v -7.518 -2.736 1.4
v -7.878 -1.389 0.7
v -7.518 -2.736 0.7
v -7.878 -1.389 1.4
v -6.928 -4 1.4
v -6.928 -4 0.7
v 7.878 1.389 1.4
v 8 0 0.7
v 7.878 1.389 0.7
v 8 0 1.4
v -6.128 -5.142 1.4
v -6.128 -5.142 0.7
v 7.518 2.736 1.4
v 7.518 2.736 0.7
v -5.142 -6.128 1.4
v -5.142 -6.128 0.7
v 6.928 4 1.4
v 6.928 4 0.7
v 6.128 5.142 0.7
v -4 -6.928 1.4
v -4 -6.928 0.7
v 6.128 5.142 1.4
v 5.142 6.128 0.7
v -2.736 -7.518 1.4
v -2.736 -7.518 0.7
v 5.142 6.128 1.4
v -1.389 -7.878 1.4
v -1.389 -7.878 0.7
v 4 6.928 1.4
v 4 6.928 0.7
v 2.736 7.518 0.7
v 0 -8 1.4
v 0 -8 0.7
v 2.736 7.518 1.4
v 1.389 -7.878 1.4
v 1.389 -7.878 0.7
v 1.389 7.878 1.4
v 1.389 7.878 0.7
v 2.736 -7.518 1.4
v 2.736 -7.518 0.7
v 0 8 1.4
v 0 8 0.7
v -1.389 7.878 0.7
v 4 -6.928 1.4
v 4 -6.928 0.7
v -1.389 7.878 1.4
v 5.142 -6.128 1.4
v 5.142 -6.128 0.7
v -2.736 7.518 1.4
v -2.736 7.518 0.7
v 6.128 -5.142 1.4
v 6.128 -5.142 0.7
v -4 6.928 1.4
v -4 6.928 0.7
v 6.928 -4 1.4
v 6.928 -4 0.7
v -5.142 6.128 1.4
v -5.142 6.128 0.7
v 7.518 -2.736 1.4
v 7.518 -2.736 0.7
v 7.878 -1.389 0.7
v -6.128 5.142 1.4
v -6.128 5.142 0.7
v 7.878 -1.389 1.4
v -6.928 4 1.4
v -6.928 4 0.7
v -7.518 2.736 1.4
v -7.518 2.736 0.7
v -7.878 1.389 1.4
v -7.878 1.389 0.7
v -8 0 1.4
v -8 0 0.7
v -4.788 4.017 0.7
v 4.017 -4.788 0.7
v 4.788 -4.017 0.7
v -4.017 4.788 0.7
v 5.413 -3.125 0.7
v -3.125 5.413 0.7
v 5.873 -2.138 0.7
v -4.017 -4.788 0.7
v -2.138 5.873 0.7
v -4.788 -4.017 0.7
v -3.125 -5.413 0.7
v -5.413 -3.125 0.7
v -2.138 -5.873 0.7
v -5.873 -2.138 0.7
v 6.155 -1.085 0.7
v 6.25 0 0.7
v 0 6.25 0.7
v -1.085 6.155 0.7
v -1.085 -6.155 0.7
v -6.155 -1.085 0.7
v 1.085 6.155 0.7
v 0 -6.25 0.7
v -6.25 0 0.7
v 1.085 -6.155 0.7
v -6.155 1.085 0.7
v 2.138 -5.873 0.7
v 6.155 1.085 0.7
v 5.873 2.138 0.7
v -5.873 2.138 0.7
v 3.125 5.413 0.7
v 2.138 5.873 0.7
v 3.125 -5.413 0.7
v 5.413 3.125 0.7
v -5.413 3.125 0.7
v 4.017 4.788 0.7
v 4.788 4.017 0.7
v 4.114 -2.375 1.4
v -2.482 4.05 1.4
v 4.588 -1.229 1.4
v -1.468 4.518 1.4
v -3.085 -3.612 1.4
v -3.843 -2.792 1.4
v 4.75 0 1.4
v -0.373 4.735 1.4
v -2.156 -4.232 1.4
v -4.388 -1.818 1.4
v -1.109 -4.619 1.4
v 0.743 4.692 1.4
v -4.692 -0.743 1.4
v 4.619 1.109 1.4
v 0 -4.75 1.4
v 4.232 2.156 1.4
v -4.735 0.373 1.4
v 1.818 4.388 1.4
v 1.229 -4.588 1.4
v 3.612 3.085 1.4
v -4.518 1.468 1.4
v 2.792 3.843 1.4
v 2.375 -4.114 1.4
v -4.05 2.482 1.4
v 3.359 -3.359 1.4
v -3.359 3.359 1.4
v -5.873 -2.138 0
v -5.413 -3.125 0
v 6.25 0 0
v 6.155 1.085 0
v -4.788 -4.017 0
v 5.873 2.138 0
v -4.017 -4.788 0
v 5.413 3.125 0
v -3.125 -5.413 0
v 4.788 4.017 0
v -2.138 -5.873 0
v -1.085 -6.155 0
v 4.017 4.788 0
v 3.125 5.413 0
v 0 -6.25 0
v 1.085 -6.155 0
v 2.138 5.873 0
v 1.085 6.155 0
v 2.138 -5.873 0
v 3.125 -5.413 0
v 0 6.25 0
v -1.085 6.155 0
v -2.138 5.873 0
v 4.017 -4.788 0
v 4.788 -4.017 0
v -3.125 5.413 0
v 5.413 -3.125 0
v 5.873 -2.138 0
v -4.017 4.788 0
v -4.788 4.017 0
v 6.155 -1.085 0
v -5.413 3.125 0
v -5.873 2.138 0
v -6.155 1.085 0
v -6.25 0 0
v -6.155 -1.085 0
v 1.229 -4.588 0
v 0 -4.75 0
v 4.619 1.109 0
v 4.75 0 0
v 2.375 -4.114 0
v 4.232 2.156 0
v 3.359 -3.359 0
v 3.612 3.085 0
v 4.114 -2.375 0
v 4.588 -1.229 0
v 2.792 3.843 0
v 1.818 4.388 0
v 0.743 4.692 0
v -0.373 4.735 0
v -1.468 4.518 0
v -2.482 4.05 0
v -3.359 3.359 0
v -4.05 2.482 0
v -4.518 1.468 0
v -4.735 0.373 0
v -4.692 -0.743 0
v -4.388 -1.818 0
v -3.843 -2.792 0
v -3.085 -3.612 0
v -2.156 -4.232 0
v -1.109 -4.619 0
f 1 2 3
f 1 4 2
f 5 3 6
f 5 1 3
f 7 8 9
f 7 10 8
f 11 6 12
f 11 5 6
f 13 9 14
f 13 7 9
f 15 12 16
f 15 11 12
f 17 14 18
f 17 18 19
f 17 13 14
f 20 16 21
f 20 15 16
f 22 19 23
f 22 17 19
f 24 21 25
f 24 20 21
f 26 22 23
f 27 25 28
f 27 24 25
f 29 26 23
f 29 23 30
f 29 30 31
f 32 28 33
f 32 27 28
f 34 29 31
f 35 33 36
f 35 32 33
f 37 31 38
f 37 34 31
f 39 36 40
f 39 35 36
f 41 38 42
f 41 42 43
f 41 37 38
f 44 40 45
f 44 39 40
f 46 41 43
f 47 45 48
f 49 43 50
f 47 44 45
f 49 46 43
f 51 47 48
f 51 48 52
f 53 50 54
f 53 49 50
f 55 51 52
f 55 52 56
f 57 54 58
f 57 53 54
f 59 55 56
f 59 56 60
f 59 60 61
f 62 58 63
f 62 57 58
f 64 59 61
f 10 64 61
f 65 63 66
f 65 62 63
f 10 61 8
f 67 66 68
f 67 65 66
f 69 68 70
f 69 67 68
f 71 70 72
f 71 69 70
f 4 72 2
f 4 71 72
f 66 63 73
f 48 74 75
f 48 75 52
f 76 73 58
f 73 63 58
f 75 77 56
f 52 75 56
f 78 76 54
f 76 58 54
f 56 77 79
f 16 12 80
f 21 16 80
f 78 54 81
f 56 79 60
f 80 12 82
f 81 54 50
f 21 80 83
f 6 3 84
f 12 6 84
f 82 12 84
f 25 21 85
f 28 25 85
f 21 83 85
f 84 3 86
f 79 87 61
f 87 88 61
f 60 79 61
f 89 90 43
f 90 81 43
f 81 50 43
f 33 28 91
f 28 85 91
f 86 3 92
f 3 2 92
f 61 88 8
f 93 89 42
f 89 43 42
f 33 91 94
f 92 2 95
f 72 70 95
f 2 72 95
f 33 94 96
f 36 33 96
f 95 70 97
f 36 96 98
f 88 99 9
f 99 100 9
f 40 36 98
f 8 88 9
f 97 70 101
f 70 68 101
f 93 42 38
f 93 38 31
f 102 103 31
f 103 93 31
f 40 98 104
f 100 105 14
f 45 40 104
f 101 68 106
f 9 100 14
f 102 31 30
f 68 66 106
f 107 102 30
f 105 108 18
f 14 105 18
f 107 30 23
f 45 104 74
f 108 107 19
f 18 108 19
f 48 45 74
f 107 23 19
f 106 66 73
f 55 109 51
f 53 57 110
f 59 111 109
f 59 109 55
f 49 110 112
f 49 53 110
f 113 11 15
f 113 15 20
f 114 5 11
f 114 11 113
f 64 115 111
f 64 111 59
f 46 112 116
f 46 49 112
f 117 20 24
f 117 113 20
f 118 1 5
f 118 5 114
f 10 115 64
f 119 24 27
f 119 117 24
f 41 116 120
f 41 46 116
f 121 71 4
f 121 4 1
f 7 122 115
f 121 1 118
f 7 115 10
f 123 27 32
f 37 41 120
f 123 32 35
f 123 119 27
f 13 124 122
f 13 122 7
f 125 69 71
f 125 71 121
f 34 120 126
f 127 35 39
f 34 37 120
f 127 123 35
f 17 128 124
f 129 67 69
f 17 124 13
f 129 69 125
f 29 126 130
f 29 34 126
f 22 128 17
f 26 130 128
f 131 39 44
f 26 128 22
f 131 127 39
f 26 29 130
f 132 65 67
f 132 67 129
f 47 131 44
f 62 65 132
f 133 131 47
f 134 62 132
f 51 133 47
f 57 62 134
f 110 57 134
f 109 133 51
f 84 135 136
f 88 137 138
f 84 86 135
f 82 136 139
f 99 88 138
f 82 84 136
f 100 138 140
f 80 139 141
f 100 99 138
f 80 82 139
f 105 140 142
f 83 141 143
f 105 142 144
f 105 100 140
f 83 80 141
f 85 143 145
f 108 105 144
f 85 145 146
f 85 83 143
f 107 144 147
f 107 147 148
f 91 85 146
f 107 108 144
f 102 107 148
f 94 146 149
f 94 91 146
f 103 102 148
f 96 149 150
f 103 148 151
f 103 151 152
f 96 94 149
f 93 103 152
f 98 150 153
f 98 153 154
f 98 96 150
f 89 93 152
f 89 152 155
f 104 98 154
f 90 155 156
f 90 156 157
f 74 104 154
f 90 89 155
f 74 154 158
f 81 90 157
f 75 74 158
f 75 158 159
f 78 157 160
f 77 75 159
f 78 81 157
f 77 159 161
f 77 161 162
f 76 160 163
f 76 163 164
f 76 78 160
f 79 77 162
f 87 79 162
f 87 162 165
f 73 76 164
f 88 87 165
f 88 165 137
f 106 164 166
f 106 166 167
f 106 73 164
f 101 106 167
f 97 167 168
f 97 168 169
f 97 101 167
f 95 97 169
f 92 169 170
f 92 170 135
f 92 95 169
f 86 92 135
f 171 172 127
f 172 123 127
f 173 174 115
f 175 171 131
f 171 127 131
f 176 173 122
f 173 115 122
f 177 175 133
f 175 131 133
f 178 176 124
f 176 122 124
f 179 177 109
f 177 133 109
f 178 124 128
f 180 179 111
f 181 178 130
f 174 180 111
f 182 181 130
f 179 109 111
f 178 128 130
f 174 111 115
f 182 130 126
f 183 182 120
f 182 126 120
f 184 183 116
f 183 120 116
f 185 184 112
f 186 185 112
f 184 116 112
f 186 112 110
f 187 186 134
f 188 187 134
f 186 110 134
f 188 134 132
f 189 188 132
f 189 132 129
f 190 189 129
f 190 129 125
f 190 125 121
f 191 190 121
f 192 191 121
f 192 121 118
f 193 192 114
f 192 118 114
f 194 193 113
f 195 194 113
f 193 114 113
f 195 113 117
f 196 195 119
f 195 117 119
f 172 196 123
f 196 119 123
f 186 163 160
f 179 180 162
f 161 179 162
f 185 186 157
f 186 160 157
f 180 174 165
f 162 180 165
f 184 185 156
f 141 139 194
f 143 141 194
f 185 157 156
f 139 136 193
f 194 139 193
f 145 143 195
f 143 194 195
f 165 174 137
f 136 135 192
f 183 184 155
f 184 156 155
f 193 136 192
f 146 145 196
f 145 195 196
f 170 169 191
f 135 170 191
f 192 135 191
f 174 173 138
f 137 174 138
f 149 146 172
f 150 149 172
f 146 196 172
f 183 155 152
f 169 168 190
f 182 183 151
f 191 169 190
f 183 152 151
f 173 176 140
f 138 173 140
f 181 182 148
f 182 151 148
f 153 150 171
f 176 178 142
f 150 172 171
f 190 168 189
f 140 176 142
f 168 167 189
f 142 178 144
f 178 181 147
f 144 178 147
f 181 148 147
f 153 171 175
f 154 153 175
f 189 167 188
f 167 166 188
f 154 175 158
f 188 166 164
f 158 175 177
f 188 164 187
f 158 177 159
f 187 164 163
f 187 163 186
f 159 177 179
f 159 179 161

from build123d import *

# Parameters (mm, degrees)
CYLINDER_R        = 4.75
CYLINDER_DEPTH    = 10
CYLINDER001_R     = 6.25
CYLINDER001_DEPTH = 0.7
CYLINDER002_R     = 8
CYLINDER002_DEPTH = 0.7


with BuildPart() as cylinder:
    # Cylinder → Cylinder (new body)
    with BuildSketch(Plane.XY.offset(-4)):
        Circle(CYLINDER_R)
    extrude(amount=CYLINDER_DEPTH)


with BuildPart() as cylinder001:
    # Cylinder001 → Cylinder001 (new body)
    with BuildSketch(Plane.XY):
        Circle(CYLINDER001_R)
    extrude(amount=CYLINDER001_DEPTH)


with BuildPart() as washer:
    # Cylinder002 → Cylinder002 (new body)
    with BuildSketch(Plane.XY.offset(0.7)):
        Circle(CYLINDER002_R)
    extrude(amount=CYLINDER002_DEPTH)

    # Fusion: union Cylinder001
    add(cylinder001.part)

    # Cut: cut Cylinder
    add(cylinder.part, mode=Mode.SUBTRACT)


solid = washer.part
